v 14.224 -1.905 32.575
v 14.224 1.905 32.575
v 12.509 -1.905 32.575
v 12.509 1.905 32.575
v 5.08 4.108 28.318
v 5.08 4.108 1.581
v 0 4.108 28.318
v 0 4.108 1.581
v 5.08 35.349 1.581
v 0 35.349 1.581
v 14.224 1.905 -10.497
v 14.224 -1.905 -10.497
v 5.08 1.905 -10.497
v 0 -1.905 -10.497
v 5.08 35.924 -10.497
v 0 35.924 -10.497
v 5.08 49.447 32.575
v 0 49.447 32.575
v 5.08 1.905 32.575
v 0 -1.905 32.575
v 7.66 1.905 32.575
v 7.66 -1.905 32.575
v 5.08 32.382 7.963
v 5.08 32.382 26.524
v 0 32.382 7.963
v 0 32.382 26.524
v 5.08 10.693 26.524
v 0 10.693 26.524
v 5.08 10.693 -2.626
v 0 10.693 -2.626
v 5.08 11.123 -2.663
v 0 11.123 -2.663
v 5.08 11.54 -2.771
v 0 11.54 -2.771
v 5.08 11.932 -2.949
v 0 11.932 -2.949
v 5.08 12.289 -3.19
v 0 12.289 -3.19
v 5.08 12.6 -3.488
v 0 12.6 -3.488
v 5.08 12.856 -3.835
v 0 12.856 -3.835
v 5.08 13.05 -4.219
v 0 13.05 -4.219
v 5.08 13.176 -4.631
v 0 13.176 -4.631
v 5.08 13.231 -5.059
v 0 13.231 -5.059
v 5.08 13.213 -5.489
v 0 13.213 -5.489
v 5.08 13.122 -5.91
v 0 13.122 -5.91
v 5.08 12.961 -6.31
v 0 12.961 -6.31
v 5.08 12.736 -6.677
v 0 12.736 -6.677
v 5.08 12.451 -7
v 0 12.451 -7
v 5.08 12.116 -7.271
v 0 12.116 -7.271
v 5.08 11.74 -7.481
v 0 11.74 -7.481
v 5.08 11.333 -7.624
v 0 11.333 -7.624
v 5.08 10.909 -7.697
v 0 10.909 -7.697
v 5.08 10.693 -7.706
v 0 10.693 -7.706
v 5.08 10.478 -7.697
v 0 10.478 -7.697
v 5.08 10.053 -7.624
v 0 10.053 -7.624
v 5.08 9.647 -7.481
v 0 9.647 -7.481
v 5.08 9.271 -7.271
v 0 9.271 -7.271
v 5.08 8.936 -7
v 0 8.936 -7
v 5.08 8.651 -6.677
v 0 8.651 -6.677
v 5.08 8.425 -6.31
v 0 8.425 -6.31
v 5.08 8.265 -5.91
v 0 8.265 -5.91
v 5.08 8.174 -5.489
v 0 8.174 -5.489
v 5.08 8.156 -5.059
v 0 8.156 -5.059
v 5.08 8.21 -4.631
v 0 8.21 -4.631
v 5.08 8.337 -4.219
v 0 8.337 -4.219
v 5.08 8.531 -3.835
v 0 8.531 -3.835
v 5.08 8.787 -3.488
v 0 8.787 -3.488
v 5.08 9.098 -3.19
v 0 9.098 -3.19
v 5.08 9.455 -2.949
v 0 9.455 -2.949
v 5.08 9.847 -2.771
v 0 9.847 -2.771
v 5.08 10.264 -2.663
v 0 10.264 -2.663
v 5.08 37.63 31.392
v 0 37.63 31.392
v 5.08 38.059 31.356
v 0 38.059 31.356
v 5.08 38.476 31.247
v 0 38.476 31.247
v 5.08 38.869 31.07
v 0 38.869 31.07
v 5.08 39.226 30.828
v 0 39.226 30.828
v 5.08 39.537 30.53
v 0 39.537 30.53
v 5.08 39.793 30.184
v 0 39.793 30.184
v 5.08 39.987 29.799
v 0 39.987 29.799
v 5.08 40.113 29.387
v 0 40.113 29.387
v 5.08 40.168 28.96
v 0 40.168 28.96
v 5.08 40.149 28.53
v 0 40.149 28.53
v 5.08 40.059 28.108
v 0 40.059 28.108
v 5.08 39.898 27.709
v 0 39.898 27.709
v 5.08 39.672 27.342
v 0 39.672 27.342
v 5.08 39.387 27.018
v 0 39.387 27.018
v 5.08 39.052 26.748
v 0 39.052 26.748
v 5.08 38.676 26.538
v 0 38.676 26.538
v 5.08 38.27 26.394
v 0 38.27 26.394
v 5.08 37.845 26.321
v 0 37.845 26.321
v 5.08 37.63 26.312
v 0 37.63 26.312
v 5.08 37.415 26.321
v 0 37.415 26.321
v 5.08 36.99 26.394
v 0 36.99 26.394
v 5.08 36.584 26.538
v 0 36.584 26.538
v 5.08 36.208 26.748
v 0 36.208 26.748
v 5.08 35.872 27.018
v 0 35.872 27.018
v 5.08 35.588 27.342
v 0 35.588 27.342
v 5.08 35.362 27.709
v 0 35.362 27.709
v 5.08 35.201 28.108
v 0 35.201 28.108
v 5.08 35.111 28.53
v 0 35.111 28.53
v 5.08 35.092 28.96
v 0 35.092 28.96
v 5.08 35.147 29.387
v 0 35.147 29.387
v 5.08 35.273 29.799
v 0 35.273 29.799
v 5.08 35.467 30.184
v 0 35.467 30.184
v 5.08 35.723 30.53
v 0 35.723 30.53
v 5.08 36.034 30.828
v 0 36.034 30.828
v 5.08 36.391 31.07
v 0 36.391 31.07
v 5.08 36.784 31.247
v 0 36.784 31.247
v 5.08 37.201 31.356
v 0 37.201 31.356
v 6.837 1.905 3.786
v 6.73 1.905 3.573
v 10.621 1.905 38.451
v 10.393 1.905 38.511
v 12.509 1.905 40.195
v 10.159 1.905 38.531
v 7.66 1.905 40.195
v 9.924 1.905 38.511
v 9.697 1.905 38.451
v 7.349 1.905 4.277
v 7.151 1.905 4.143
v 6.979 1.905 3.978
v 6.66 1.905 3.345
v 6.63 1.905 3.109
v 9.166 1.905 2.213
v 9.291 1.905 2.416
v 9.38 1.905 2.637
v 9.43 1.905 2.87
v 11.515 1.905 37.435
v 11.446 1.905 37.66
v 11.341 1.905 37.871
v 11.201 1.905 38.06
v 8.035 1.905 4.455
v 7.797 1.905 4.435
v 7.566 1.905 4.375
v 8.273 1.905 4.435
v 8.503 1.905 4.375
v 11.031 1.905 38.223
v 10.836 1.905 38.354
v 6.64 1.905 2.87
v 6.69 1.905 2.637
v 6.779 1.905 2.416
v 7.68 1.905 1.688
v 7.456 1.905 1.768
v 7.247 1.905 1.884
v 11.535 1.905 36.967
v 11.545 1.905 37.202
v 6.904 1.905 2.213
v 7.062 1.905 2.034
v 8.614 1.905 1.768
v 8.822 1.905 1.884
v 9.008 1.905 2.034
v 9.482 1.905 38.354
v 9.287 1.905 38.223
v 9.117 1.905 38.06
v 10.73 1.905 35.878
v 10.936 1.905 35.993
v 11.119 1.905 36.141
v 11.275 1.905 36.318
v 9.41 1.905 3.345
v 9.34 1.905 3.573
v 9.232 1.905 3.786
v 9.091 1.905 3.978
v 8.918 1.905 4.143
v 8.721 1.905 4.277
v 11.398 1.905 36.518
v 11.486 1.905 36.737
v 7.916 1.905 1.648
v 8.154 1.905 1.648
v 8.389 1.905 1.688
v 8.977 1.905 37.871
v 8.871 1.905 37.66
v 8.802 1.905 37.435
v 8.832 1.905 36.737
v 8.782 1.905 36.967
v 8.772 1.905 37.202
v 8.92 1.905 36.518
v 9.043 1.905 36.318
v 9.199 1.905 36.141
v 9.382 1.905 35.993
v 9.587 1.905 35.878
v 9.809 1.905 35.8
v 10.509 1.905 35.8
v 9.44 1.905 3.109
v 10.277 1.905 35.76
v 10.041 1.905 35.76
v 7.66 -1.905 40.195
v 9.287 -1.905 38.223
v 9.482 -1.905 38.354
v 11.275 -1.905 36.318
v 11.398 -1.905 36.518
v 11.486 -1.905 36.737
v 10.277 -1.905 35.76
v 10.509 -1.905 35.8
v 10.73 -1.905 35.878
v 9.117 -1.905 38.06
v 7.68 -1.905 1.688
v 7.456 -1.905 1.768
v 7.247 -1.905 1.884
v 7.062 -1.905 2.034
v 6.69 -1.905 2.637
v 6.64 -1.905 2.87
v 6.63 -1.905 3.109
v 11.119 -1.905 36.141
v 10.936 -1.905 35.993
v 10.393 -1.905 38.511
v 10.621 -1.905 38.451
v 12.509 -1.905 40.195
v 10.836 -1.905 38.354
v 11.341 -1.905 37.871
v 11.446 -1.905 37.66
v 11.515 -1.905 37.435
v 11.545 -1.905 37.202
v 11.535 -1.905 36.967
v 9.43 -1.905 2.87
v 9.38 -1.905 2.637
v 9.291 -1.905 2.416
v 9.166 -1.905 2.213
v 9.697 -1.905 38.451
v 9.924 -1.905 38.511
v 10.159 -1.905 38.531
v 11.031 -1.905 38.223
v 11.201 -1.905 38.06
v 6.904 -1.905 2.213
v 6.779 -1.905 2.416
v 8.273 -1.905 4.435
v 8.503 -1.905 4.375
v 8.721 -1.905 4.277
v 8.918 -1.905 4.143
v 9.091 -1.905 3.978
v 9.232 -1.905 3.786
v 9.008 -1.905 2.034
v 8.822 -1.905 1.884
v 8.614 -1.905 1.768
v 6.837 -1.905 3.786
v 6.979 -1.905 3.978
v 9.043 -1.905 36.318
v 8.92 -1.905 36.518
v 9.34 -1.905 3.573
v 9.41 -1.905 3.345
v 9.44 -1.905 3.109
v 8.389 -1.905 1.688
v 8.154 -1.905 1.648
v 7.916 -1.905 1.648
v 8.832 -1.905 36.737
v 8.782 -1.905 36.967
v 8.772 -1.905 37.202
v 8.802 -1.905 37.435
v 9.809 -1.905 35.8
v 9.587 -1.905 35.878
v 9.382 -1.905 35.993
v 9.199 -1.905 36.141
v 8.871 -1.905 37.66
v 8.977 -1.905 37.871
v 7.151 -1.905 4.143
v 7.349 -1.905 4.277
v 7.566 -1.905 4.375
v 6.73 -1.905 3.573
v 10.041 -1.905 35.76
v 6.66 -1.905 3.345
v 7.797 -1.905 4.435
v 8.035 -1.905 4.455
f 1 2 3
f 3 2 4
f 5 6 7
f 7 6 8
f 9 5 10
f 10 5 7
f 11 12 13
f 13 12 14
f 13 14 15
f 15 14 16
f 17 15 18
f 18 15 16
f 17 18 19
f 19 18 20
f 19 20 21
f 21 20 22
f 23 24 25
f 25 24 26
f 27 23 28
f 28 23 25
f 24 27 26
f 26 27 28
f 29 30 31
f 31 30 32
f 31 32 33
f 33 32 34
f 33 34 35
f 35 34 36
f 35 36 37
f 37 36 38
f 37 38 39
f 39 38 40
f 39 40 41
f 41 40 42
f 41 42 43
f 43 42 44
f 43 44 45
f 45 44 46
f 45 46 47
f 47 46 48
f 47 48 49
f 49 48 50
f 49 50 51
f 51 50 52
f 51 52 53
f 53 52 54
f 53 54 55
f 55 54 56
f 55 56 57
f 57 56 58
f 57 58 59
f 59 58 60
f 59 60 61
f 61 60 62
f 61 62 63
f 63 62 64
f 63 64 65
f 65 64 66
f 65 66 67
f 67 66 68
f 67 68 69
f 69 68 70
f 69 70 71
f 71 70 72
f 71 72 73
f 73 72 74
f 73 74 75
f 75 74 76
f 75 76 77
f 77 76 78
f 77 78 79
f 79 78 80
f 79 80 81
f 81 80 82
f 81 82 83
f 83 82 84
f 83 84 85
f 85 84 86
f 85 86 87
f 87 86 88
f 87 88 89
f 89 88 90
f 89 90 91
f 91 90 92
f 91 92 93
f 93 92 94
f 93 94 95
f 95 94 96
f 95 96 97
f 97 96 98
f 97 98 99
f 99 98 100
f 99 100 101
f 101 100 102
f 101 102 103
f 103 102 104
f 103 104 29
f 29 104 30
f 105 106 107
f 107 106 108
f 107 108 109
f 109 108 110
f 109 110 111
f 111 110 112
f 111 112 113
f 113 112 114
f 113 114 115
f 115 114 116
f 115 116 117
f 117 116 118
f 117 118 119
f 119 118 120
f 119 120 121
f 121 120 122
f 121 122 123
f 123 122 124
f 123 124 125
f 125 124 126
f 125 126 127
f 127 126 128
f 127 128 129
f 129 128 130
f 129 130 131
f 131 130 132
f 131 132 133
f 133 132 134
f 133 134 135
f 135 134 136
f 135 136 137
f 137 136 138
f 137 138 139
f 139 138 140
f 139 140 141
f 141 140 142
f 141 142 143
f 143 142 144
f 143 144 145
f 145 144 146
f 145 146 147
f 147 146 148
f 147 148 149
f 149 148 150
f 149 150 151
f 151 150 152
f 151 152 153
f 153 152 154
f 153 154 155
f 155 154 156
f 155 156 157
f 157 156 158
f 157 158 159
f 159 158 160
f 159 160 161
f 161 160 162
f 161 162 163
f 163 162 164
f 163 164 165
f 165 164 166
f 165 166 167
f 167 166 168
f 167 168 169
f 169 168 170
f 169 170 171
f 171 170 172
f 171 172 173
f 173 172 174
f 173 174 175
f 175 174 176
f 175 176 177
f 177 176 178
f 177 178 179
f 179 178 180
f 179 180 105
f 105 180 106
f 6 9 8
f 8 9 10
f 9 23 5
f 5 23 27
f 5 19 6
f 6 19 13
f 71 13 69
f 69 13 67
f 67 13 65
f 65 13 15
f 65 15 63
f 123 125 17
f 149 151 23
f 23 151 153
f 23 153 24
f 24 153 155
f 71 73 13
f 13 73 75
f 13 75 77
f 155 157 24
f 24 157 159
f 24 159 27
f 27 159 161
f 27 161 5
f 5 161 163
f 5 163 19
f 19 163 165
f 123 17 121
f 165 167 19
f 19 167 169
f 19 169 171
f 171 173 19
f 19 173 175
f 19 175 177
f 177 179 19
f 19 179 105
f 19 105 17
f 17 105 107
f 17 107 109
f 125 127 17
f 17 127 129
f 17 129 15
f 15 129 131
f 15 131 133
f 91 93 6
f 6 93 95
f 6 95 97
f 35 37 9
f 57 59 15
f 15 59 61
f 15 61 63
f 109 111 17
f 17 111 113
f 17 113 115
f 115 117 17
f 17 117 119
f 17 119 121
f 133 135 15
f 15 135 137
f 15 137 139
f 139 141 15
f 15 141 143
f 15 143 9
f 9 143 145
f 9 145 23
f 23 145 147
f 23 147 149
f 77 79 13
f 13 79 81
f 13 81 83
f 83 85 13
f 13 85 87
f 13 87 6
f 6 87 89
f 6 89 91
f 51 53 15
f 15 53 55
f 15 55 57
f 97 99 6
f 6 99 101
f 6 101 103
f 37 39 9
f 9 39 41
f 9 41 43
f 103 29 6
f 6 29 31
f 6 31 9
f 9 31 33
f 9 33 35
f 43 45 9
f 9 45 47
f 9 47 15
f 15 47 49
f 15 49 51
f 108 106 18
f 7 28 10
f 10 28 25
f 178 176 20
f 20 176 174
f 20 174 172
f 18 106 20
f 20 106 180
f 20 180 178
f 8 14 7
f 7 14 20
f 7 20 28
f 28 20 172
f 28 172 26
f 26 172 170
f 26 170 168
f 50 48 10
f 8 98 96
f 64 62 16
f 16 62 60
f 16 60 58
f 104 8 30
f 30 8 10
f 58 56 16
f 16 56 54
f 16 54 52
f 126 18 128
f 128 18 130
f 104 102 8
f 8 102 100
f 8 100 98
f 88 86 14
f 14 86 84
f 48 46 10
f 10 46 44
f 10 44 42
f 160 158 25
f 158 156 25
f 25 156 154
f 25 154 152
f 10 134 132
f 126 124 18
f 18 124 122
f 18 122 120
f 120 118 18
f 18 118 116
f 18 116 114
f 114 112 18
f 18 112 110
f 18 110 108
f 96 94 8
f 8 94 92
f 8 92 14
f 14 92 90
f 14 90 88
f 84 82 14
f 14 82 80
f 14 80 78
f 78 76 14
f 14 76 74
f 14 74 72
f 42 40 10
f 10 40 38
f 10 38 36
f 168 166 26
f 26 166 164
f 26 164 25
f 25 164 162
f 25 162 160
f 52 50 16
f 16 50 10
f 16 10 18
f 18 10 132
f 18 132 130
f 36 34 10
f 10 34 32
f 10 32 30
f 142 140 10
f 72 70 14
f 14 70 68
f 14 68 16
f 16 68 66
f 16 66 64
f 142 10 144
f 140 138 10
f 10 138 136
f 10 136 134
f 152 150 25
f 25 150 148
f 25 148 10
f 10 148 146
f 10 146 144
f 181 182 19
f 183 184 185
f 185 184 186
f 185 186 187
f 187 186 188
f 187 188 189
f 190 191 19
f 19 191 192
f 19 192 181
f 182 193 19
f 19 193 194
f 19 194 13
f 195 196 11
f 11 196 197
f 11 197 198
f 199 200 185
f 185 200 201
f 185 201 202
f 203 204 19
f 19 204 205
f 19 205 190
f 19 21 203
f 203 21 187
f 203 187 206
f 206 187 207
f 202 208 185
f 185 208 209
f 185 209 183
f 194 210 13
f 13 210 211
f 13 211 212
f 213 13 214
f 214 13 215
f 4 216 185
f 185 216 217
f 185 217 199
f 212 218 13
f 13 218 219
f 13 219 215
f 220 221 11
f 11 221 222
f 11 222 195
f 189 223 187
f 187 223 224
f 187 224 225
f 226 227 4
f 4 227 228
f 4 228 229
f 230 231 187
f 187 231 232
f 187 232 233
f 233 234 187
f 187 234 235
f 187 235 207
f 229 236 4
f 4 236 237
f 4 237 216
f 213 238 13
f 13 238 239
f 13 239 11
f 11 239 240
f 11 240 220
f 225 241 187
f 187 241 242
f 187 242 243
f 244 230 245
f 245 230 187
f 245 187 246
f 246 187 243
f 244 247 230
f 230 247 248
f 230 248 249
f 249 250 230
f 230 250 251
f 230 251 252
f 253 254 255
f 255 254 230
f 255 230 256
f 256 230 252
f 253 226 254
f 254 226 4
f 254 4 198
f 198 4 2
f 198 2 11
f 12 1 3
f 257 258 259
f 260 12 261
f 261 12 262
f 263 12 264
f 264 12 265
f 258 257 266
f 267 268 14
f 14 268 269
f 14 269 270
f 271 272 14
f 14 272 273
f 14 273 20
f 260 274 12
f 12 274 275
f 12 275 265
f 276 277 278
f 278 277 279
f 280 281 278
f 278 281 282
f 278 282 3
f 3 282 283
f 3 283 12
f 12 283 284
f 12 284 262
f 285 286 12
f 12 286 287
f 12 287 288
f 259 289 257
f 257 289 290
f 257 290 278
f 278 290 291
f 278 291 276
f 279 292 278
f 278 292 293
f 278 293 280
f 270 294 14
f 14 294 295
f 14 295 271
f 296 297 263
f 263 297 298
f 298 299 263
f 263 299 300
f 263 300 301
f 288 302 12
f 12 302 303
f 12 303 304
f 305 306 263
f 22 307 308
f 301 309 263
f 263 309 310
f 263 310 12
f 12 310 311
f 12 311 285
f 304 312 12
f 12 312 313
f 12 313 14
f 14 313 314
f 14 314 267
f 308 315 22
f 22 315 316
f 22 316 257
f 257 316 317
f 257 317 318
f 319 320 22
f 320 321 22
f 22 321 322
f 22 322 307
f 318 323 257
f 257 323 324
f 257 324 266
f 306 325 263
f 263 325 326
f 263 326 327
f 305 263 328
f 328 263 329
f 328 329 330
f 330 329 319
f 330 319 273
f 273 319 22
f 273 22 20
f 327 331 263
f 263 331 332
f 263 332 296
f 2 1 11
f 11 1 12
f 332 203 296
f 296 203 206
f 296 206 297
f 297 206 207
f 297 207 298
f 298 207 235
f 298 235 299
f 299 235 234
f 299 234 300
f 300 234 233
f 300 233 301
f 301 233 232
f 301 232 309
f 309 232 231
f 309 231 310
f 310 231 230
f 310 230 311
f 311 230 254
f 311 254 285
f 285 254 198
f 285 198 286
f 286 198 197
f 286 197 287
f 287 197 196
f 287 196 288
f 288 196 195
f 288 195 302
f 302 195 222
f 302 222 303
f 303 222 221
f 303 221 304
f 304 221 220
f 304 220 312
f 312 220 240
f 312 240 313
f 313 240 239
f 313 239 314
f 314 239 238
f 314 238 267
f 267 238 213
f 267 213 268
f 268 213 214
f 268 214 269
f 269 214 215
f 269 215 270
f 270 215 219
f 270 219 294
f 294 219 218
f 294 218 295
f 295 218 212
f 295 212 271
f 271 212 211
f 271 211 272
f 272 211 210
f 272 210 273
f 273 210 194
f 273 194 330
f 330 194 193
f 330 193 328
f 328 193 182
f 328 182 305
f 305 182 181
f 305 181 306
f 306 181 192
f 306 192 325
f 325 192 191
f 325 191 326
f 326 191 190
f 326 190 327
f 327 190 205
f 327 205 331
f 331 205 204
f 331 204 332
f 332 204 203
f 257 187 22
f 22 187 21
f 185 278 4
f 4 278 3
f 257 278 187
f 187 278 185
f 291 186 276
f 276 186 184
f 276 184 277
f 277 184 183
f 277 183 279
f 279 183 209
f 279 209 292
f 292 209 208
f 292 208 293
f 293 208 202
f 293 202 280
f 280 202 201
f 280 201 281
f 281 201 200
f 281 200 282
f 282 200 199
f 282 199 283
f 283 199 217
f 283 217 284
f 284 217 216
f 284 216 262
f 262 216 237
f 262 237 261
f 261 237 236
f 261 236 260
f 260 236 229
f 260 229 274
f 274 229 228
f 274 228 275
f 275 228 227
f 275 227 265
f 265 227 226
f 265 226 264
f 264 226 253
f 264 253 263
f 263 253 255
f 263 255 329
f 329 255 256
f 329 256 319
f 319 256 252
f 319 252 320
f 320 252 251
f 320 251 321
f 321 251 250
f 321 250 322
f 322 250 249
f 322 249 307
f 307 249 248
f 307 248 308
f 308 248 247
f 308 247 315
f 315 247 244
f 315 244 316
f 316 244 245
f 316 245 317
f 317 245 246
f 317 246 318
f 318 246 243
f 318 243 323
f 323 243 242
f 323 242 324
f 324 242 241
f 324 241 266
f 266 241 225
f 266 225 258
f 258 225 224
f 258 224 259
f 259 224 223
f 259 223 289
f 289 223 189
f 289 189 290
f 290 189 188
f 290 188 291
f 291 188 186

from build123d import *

# Parameters (mm, degrees)
SKETCH2_R           = 2.54
BOSS_EXTRUDE1_DEPTH = 5.08
SKETCH2_3_W         = 43.072058764
SKETCH2_3_H         = 3.81
BOSS_EXTRUDE2_DEPTH = 14.224
SKETCH3_R           = 1.40634392
CUT_EXTRUDE1_DEPTH  = 60.360259481
SKETCH4_W           = 4.849530786
SKETCH4_H           = 3.81
BOSS_EXTRUDE3_DEPTH = 7.62
SKETCH5_R           = 1.38768984
CUT_EXTRUDE2_DEPTH  = 64.860340465


with BuildPart() as part:
    # Sketch2 → Boss-Extrude1 (new body)
    with BuildSketch(Plane(origin=(0, 0, 0), x_dir=(0, 0, -1), z_dir=(1, 0, 0))):
        Polygon((-32.574690201, 49.446642672), (-32.574690201, 1.905), (10.497368563, 1.905), (10.497368563, 35.924444265), align=None)
        Polygon((-26.524187902, 10.6934), (-26.524187902, 32.381969715), (-7.962941991, 32.381969715), align=None, mode=Mode.SUBTRACT)
        Polygon((-28.317741421, 4.108230491), (-1.581280818, 35.349430166), (-1.581280818, 4.108230491), align=None, mode=Mode.SUBTRACT)
        with Locations((5.166357723, 10.6934)):
            Circle(SKETCH2_R, mode=Mode.SUBTRACT)
        with Locations((-28.852153042, 37.629948803)):
            Circle(SKETCH2_R, mode=Mode.SUBTRACT)
    extrude(amount=BOSS_EXTRUDE1_DEPTH)

    # Sketch2<3> → Boss-Extrude2 (add)
    with BuildSketch(Plane(origin=(0, 0, 0), x_dir=(0, 0, -1), z_dir=(1, 0, 0))):
        with Locations((-11.038660819, 0)):
            Rectangle(SKETCH2_3_W, SKETCH2_3_H)
    extrude(amount=BOSS_EXTRUDE2_DEPTH)

    # Sketch3 → Cut-Extrude1 (cut, through all)
    with BuildSketch(Plane(origin=(0, 1.905, 0), x_dir=(1, 0, 0), z_dir=(0, 1, 0))):
        with Locations((8.034839411, -3.04906194)):
            Circle(SKETCH3_R)
    extrude(amount=-CUT_EXTRUDE1_DEPTH, mode=Mode.SUBTRACT)

    # Sketch4 → Boss-Extrude3 (add)
    with BuildSketch(Plane.XY.offset(32.574690201)):
        with Locations((10.0846687, 0)):
            Rectangle(SKETCH4_W, SKETCH4_H)
    extrude(amount=BOSS_EXTRUDE3_DEPTH)

    # Sketch5 → Cut-Extrude2 (cut, through all)
    with BuildSketch(Plane(origin=(0, 1.905, 0), x_dir=(1, 0, 0), z_dir=(0, 1, 0))):
        with Locations((10.158864626, -37.143001749)):
            Circle(SKETCH5_R)
    extrude(amount=-CUT_EXTRUDE2_DEPTH, mode=Mode.SUBTRACT)


solid = part.part
